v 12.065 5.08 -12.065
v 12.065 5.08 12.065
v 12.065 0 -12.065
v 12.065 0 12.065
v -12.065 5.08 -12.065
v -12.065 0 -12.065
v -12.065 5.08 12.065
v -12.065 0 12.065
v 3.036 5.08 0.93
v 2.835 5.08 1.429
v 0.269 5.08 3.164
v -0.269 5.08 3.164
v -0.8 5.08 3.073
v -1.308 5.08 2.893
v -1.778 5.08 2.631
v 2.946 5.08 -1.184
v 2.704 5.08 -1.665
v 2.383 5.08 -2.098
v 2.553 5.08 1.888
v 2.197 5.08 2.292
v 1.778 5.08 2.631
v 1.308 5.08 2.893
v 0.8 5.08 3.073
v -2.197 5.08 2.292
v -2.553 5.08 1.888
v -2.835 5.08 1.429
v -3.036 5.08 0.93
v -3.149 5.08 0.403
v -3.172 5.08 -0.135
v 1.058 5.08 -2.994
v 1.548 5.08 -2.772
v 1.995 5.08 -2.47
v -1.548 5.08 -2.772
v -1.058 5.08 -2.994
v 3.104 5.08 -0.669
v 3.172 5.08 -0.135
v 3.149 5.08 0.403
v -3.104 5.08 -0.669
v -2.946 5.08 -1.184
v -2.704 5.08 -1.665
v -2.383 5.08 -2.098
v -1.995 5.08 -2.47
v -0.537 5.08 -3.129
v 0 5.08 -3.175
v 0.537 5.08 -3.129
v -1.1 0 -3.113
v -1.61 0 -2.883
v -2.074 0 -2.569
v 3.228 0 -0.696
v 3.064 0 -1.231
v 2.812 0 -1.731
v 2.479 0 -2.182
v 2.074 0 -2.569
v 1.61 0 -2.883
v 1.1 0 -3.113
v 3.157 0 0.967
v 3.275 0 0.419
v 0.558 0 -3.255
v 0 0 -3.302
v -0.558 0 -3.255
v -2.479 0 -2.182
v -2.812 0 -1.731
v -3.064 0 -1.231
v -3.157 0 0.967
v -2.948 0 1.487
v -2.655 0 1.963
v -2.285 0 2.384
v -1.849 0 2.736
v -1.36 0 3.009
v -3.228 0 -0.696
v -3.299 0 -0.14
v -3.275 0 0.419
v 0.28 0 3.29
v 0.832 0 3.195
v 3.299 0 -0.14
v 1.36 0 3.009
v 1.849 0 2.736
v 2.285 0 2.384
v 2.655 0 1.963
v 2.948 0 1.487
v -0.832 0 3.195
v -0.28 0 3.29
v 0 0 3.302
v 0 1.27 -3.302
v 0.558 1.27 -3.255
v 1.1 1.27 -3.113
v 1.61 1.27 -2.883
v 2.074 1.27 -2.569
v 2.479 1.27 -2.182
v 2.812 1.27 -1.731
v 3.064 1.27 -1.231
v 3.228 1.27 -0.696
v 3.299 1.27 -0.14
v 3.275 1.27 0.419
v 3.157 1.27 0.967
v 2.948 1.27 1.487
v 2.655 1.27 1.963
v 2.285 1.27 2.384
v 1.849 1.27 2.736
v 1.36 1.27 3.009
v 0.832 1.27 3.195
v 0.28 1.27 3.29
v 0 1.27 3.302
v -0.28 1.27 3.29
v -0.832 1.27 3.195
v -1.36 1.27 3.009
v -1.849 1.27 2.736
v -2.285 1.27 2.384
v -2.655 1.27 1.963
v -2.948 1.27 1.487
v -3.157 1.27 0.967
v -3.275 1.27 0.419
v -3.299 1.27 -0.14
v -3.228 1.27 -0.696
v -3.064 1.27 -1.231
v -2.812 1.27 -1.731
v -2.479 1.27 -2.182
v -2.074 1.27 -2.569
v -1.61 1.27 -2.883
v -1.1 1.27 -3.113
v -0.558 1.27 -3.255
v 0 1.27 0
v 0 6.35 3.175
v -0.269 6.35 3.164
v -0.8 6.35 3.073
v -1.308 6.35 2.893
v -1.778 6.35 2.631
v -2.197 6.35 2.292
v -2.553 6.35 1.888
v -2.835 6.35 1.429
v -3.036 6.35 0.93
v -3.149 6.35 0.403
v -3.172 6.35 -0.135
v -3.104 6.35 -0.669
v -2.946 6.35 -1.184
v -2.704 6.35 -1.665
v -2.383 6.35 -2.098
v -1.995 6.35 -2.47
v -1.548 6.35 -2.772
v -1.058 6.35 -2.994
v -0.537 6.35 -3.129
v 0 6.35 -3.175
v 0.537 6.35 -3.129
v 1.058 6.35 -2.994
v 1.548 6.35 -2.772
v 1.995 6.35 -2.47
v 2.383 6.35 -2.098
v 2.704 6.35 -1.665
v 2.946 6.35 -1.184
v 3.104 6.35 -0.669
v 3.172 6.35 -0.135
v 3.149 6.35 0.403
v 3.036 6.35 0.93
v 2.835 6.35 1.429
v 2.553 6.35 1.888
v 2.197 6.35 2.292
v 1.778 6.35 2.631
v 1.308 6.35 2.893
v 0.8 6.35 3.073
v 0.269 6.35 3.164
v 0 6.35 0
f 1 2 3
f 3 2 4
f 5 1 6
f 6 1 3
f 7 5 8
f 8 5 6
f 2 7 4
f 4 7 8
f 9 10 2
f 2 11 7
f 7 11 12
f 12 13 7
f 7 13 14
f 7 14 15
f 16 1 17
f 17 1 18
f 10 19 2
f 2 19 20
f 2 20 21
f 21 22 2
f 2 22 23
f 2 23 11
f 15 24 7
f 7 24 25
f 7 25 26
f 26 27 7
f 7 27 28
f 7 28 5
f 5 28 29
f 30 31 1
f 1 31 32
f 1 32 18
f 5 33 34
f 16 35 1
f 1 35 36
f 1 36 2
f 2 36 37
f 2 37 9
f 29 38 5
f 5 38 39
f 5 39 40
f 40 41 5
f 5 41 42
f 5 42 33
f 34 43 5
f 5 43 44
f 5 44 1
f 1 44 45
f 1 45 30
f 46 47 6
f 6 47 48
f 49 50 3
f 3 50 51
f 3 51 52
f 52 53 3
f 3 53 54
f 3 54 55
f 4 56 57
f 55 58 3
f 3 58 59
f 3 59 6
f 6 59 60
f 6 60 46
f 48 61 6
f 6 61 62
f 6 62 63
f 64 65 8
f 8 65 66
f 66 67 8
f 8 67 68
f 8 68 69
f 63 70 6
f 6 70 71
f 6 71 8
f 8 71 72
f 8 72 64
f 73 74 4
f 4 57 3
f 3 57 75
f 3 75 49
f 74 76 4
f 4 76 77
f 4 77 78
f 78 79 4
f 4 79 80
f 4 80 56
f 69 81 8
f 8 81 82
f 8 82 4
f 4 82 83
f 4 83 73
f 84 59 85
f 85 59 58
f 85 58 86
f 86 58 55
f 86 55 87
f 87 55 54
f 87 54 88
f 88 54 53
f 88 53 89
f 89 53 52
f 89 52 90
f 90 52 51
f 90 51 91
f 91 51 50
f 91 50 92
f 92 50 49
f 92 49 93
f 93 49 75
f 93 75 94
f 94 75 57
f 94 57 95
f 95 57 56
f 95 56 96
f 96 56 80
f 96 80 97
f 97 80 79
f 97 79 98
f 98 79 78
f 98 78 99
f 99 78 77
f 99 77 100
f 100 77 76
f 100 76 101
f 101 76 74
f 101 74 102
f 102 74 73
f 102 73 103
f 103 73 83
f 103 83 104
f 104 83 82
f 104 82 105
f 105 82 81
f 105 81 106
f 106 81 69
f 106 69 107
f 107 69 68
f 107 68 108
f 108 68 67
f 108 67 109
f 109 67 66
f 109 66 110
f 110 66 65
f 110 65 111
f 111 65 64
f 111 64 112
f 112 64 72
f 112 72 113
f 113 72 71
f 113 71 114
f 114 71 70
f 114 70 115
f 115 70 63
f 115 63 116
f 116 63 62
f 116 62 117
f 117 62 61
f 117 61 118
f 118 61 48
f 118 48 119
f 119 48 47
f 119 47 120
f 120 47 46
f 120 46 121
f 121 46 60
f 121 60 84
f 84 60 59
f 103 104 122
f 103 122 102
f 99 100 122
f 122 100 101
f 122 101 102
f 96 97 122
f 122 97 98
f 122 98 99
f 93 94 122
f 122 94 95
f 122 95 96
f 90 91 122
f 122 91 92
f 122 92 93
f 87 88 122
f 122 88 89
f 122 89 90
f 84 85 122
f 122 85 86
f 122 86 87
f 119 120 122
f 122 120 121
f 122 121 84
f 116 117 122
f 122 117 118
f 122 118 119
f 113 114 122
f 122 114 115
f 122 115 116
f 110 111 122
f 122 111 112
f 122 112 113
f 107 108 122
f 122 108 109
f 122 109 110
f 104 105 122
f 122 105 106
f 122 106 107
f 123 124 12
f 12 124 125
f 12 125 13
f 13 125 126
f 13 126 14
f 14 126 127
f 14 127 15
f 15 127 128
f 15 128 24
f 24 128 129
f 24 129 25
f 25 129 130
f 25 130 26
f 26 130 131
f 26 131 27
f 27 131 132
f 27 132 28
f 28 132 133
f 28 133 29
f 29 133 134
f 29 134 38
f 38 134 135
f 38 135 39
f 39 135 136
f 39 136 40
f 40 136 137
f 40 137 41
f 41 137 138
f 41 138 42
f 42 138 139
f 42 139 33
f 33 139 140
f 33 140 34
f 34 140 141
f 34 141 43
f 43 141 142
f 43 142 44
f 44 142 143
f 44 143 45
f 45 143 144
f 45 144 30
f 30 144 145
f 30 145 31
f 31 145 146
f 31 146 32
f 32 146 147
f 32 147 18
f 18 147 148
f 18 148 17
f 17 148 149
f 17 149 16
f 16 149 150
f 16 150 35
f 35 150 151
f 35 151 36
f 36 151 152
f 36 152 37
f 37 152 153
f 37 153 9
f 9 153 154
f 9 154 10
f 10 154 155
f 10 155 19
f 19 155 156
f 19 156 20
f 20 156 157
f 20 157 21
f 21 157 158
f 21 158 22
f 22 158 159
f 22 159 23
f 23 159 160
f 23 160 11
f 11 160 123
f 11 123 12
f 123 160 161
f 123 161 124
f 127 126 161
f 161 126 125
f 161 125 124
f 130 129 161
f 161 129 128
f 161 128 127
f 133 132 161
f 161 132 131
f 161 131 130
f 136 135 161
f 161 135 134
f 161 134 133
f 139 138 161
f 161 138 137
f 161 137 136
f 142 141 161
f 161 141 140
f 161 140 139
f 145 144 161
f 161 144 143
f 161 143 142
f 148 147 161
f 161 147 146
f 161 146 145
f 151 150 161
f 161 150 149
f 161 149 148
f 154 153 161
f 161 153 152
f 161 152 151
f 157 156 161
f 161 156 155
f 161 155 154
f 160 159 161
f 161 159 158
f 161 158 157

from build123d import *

# Parameters (mm, degrees)
SKETCH1_W           = 24.13
SKETCH1_H           = 24.13
BOSS_EXTRUDE1_DEPTH = 5.08
SKETCH2_R           = 3.302
CUT_EXTRUDE1_DEPTH  = 1.27
SKETCH3_R           = 3.175
BOSS_EXTRUDE2_DEPTH = 1.27


with BuildPart() as part:
    # Sketch1 → Boss-Extrude1 (new body)
    with BuildSketch(Plane(origin=(0, 0, 0), x_dir=(1, 0, 0), z_dir=(0, 1, 0))):
        Rectangle(SKETCH1_W, SKETCH1_H)
    extrude(amount=BOSS_EXTRUDE1_DEPTH)

    # Sketch2 → Cut-Extrude1 (cut)
    with BuildSketch(Plane(origin=(0, 0, 0), x_dir=(1, 0, 0), z_dir=(0, 1, 0))):
        with Locations(Location((0, 0, 0), (0, 0, 270))):
            Circle(SKETCH2_R)
    extrude(amount=CUT_EXTRUDE1_DEPTH, mode=Mode.SUBTRACT)

    # Sketch3 → Boss-Extrude2 (add)
    with BuildSketch(Plane(origin=(0, 5.08, 0), x_dir=(1, 0, 0), z_dir=(0, 1, 0))):
        with Locations(Location((0, 0, 0), (0, 0, 90))):
            Circle(SKETCH3_R)
    extrude(amount=BOSS_EXTRUDE2_DEPTH)


solid = part.part
